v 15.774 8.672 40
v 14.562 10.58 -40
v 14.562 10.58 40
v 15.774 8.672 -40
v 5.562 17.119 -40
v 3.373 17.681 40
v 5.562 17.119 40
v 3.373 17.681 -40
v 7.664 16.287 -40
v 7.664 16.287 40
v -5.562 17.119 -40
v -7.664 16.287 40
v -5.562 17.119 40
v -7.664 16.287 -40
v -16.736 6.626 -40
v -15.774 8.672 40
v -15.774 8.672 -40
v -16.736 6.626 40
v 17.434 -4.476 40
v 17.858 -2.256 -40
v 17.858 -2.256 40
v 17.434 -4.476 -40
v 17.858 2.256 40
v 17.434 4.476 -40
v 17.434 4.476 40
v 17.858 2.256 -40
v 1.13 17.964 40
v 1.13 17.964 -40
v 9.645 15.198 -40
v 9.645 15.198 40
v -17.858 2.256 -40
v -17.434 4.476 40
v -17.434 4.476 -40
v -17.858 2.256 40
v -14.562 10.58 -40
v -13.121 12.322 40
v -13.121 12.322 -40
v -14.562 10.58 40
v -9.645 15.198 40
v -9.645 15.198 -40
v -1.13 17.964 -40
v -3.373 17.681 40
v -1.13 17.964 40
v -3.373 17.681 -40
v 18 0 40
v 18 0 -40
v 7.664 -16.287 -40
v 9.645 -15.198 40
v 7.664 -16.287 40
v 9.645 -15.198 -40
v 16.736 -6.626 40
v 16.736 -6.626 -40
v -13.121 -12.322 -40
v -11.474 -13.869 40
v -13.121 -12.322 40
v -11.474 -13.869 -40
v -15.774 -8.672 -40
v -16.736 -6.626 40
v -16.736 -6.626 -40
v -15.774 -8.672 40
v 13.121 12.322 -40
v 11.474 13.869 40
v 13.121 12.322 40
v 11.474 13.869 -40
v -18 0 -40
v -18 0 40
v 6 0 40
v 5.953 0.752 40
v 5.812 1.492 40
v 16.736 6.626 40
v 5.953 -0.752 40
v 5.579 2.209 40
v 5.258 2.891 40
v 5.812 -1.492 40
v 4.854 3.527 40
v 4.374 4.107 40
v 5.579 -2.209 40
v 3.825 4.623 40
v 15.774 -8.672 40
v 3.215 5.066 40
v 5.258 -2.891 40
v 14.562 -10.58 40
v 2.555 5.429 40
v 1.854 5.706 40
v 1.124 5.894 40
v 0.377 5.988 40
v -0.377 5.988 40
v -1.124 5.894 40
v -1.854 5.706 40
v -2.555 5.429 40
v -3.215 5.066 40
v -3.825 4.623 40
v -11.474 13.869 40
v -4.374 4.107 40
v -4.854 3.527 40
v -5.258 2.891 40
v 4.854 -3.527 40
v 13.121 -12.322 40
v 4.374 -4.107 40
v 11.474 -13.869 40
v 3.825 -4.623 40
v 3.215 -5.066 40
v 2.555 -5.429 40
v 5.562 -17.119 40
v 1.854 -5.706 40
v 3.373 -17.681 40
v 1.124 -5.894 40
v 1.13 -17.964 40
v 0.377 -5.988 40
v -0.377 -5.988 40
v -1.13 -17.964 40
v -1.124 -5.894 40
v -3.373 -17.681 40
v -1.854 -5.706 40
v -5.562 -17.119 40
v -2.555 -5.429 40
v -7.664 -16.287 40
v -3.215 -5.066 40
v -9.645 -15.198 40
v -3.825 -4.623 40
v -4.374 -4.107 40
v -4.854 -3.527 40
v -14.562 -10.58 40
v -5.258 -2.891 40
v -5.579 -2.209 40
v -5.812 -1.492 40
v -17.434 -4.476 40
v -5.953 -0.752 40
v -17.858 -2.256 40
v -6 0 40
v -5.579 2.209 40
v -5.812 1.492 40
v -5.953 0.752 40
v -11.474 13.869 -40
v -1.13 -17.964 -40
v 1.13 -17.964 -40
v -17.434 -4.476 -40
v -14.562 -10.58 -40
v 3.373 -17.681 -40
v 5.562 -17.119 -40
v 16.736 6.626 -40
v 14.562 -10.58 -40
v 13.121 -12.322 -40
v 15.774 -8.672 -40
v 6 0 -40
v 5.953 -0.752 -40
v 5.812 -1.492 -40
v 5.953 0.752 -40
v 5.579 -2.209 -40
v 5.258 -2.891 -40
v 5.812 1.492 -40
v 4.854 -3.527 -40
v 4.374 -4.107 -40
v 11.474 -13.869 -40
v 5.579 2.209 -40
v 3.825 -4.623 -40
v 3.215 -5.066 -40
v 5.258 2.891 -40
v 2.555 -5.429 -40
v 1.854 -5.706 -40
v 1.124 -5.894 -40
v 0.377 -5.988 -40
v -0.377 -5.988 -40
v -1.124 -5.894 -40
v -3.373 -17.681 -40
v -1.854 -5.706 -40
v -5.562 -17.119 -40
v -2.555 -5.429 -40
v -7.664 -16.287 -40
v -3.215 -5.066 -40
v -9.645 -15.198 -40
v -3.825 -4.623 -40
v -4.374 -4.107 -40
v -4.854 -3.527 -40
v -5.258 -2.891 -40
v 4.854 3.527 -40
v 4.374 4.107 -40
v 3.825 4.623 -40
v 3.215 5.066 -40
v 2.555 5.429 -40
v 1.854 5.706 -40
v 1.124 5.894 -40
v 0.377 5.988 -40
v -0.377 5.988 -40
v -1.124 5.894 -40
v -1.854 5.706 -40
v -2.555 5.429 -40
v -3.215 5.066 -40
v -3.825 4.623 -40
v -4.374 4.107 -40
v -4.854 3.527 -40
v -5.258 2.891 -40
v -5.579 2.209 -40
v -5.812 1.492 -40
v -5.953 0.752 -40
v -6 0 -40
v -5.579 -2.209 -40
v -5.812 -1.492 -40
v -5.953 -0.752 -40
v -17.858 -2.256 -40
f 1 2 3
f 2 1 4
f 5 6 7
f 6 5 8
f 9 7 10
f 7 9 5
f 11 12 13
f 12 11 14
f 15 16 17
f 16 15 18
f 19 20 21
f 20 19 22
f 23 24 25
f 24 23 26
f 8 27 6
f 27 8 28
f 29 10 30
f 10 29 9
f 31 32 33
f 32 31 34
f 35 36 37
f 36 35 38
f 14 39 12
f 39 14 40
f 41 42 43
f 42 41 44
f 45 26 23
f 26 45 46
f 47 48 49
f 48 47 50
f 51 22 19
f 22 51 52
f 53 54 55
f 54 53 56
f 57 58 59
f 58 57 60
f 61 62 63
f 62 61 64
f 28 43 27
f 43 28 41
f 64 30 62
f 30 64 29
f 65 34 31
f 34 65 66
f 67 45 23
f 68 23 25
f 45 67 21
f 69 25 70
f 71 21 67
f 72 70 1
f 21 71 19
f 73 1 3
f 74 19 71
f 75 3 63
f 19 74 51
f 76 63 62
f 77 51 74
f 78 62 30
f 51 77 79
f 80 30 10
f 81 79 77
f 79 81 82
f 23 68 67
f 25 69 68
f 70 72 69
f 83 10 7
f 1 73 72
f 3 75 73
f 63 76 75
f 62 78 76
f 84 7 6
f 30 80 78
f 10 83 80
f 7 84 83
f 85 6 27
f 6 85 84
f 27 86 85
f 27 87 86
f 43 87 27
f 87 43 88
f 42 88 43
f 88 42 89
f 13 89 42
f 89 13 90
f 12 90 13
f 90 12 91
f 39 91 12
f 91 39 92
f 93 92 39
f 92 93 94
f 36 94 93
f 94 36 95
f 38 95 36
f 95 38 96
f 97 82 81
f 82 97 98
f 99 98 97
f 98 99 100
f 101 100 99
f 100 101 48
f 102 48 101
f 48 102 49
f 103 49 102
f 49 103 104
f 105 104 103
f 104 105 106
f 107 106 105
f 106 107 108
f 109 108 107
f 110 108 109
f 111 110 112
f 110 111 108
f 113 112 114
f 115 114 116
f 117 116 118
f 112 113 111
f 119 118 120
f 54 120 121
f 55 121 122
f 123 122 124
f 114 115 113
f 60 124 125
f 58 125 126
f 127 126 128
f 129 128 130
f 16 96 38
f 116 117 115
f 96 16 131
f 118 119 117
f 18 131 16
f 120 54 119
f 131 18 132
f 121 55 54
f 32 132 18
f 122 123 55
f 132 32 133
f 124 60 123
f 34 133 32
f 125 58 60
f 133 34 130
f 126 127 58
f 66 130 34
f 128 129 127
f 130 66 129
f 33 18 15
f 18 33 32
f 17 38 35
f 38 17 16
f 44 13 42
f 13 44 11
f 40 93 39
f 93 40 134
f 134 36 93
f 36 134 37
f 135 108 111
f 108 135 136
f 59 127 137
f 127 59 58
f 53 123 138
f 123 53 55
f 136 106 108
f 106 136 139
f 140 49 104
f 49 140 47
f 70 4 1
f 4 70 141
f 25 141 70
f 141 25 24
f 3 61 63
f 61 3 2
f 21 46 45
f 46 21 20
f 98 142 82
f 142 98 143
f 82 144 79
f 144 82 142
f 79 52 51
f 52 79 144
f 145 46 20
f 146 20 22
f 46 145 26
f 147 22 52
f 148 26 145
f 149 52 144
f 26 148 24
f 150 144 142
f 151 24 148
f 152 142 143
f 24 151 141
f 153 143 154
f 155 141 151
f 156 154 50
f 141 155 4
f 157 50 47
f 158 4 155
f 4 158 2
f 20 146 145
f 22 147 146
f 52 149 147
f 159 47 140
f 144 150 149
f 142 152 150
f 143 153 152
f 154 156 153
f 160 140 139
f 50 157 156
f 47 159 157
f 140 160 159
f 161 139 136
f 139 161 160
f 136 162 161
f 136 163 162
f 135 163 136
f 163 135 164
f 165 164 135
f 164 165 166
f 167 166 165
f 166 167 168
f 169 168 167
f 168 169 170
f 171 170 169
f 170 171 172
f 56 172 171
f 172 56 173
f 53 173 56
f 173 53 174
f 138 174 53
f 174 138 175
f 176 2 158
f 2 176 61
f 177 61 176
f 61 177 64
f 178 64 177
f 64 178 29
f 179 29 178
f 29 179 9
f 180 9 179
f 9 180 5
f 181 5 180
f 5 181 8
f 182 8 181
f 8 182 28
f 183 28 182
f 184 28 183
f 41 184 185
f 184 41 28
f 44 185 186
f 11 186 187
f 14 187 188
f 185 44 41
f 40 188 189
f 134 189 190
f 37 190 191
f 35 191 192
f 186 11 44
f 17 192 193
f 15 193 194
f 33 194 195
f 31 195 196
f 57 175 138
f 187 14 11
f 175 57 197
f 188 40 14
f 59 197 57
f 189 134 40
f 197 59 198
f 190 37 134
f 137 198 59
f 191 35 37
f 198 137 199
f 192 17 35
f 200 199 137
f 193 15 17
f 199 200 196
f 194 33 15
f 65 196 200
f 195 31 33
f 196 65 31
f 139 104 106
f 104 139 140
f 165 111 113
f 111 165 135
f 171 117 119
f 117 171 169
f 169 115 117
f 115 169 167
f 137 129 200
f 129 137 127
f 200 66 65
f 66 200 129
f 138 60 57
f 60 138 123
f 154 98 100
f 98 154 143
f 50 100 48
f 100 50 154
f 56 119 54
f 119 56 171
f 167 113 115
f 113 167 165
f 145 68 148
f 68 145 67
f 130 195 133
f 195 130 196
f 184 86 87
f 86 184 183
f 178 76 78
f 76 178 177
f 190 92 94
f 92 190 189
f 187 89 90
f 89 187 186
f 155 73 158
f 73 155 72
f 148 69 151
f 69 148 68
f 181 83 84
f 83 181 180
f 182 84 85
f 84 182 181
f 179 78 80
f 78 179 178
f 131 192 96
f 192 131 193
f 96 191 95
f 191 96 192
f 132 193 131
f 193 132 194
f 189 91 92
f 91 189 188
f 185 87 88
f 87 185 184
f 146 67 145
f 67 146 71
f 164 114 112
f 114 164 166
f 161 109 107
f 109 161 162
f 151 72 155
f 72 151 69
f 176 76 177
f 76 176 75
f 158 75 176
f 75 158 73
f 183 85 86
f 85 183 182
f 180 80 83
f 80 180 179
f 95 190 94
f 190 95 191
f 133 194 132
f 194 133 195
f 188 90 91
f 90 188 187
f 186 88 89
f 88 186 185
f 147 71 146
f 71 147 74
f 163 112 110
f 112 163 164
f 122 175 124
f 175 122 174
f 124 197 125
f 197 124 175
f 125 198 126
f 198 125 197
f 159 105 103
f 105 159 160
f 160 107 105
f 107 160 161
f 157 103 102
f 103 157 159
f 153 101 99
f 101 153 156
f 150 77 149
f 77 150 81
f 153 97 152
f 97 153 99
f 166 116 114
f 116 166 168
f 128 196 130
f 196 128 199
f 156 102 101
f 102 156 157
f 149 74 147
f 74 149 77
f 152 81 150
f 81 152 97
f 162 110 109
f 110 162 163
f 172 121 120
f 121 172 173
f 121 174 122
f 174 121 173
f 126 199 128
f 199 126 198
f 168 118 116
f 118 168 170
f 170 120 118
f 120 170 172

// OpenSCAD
$fn = 50;


difference() {
	union() {
		translate(v = [0, 0, -40.0000000000]) {
			cylinder(h = 80, r = 18.0000000000);
		}
	}
	union() {
		translate(v = [0, 0, -100.0000000000]) {
			cylinder(h = 200, r = 6);
		}
	}
}
